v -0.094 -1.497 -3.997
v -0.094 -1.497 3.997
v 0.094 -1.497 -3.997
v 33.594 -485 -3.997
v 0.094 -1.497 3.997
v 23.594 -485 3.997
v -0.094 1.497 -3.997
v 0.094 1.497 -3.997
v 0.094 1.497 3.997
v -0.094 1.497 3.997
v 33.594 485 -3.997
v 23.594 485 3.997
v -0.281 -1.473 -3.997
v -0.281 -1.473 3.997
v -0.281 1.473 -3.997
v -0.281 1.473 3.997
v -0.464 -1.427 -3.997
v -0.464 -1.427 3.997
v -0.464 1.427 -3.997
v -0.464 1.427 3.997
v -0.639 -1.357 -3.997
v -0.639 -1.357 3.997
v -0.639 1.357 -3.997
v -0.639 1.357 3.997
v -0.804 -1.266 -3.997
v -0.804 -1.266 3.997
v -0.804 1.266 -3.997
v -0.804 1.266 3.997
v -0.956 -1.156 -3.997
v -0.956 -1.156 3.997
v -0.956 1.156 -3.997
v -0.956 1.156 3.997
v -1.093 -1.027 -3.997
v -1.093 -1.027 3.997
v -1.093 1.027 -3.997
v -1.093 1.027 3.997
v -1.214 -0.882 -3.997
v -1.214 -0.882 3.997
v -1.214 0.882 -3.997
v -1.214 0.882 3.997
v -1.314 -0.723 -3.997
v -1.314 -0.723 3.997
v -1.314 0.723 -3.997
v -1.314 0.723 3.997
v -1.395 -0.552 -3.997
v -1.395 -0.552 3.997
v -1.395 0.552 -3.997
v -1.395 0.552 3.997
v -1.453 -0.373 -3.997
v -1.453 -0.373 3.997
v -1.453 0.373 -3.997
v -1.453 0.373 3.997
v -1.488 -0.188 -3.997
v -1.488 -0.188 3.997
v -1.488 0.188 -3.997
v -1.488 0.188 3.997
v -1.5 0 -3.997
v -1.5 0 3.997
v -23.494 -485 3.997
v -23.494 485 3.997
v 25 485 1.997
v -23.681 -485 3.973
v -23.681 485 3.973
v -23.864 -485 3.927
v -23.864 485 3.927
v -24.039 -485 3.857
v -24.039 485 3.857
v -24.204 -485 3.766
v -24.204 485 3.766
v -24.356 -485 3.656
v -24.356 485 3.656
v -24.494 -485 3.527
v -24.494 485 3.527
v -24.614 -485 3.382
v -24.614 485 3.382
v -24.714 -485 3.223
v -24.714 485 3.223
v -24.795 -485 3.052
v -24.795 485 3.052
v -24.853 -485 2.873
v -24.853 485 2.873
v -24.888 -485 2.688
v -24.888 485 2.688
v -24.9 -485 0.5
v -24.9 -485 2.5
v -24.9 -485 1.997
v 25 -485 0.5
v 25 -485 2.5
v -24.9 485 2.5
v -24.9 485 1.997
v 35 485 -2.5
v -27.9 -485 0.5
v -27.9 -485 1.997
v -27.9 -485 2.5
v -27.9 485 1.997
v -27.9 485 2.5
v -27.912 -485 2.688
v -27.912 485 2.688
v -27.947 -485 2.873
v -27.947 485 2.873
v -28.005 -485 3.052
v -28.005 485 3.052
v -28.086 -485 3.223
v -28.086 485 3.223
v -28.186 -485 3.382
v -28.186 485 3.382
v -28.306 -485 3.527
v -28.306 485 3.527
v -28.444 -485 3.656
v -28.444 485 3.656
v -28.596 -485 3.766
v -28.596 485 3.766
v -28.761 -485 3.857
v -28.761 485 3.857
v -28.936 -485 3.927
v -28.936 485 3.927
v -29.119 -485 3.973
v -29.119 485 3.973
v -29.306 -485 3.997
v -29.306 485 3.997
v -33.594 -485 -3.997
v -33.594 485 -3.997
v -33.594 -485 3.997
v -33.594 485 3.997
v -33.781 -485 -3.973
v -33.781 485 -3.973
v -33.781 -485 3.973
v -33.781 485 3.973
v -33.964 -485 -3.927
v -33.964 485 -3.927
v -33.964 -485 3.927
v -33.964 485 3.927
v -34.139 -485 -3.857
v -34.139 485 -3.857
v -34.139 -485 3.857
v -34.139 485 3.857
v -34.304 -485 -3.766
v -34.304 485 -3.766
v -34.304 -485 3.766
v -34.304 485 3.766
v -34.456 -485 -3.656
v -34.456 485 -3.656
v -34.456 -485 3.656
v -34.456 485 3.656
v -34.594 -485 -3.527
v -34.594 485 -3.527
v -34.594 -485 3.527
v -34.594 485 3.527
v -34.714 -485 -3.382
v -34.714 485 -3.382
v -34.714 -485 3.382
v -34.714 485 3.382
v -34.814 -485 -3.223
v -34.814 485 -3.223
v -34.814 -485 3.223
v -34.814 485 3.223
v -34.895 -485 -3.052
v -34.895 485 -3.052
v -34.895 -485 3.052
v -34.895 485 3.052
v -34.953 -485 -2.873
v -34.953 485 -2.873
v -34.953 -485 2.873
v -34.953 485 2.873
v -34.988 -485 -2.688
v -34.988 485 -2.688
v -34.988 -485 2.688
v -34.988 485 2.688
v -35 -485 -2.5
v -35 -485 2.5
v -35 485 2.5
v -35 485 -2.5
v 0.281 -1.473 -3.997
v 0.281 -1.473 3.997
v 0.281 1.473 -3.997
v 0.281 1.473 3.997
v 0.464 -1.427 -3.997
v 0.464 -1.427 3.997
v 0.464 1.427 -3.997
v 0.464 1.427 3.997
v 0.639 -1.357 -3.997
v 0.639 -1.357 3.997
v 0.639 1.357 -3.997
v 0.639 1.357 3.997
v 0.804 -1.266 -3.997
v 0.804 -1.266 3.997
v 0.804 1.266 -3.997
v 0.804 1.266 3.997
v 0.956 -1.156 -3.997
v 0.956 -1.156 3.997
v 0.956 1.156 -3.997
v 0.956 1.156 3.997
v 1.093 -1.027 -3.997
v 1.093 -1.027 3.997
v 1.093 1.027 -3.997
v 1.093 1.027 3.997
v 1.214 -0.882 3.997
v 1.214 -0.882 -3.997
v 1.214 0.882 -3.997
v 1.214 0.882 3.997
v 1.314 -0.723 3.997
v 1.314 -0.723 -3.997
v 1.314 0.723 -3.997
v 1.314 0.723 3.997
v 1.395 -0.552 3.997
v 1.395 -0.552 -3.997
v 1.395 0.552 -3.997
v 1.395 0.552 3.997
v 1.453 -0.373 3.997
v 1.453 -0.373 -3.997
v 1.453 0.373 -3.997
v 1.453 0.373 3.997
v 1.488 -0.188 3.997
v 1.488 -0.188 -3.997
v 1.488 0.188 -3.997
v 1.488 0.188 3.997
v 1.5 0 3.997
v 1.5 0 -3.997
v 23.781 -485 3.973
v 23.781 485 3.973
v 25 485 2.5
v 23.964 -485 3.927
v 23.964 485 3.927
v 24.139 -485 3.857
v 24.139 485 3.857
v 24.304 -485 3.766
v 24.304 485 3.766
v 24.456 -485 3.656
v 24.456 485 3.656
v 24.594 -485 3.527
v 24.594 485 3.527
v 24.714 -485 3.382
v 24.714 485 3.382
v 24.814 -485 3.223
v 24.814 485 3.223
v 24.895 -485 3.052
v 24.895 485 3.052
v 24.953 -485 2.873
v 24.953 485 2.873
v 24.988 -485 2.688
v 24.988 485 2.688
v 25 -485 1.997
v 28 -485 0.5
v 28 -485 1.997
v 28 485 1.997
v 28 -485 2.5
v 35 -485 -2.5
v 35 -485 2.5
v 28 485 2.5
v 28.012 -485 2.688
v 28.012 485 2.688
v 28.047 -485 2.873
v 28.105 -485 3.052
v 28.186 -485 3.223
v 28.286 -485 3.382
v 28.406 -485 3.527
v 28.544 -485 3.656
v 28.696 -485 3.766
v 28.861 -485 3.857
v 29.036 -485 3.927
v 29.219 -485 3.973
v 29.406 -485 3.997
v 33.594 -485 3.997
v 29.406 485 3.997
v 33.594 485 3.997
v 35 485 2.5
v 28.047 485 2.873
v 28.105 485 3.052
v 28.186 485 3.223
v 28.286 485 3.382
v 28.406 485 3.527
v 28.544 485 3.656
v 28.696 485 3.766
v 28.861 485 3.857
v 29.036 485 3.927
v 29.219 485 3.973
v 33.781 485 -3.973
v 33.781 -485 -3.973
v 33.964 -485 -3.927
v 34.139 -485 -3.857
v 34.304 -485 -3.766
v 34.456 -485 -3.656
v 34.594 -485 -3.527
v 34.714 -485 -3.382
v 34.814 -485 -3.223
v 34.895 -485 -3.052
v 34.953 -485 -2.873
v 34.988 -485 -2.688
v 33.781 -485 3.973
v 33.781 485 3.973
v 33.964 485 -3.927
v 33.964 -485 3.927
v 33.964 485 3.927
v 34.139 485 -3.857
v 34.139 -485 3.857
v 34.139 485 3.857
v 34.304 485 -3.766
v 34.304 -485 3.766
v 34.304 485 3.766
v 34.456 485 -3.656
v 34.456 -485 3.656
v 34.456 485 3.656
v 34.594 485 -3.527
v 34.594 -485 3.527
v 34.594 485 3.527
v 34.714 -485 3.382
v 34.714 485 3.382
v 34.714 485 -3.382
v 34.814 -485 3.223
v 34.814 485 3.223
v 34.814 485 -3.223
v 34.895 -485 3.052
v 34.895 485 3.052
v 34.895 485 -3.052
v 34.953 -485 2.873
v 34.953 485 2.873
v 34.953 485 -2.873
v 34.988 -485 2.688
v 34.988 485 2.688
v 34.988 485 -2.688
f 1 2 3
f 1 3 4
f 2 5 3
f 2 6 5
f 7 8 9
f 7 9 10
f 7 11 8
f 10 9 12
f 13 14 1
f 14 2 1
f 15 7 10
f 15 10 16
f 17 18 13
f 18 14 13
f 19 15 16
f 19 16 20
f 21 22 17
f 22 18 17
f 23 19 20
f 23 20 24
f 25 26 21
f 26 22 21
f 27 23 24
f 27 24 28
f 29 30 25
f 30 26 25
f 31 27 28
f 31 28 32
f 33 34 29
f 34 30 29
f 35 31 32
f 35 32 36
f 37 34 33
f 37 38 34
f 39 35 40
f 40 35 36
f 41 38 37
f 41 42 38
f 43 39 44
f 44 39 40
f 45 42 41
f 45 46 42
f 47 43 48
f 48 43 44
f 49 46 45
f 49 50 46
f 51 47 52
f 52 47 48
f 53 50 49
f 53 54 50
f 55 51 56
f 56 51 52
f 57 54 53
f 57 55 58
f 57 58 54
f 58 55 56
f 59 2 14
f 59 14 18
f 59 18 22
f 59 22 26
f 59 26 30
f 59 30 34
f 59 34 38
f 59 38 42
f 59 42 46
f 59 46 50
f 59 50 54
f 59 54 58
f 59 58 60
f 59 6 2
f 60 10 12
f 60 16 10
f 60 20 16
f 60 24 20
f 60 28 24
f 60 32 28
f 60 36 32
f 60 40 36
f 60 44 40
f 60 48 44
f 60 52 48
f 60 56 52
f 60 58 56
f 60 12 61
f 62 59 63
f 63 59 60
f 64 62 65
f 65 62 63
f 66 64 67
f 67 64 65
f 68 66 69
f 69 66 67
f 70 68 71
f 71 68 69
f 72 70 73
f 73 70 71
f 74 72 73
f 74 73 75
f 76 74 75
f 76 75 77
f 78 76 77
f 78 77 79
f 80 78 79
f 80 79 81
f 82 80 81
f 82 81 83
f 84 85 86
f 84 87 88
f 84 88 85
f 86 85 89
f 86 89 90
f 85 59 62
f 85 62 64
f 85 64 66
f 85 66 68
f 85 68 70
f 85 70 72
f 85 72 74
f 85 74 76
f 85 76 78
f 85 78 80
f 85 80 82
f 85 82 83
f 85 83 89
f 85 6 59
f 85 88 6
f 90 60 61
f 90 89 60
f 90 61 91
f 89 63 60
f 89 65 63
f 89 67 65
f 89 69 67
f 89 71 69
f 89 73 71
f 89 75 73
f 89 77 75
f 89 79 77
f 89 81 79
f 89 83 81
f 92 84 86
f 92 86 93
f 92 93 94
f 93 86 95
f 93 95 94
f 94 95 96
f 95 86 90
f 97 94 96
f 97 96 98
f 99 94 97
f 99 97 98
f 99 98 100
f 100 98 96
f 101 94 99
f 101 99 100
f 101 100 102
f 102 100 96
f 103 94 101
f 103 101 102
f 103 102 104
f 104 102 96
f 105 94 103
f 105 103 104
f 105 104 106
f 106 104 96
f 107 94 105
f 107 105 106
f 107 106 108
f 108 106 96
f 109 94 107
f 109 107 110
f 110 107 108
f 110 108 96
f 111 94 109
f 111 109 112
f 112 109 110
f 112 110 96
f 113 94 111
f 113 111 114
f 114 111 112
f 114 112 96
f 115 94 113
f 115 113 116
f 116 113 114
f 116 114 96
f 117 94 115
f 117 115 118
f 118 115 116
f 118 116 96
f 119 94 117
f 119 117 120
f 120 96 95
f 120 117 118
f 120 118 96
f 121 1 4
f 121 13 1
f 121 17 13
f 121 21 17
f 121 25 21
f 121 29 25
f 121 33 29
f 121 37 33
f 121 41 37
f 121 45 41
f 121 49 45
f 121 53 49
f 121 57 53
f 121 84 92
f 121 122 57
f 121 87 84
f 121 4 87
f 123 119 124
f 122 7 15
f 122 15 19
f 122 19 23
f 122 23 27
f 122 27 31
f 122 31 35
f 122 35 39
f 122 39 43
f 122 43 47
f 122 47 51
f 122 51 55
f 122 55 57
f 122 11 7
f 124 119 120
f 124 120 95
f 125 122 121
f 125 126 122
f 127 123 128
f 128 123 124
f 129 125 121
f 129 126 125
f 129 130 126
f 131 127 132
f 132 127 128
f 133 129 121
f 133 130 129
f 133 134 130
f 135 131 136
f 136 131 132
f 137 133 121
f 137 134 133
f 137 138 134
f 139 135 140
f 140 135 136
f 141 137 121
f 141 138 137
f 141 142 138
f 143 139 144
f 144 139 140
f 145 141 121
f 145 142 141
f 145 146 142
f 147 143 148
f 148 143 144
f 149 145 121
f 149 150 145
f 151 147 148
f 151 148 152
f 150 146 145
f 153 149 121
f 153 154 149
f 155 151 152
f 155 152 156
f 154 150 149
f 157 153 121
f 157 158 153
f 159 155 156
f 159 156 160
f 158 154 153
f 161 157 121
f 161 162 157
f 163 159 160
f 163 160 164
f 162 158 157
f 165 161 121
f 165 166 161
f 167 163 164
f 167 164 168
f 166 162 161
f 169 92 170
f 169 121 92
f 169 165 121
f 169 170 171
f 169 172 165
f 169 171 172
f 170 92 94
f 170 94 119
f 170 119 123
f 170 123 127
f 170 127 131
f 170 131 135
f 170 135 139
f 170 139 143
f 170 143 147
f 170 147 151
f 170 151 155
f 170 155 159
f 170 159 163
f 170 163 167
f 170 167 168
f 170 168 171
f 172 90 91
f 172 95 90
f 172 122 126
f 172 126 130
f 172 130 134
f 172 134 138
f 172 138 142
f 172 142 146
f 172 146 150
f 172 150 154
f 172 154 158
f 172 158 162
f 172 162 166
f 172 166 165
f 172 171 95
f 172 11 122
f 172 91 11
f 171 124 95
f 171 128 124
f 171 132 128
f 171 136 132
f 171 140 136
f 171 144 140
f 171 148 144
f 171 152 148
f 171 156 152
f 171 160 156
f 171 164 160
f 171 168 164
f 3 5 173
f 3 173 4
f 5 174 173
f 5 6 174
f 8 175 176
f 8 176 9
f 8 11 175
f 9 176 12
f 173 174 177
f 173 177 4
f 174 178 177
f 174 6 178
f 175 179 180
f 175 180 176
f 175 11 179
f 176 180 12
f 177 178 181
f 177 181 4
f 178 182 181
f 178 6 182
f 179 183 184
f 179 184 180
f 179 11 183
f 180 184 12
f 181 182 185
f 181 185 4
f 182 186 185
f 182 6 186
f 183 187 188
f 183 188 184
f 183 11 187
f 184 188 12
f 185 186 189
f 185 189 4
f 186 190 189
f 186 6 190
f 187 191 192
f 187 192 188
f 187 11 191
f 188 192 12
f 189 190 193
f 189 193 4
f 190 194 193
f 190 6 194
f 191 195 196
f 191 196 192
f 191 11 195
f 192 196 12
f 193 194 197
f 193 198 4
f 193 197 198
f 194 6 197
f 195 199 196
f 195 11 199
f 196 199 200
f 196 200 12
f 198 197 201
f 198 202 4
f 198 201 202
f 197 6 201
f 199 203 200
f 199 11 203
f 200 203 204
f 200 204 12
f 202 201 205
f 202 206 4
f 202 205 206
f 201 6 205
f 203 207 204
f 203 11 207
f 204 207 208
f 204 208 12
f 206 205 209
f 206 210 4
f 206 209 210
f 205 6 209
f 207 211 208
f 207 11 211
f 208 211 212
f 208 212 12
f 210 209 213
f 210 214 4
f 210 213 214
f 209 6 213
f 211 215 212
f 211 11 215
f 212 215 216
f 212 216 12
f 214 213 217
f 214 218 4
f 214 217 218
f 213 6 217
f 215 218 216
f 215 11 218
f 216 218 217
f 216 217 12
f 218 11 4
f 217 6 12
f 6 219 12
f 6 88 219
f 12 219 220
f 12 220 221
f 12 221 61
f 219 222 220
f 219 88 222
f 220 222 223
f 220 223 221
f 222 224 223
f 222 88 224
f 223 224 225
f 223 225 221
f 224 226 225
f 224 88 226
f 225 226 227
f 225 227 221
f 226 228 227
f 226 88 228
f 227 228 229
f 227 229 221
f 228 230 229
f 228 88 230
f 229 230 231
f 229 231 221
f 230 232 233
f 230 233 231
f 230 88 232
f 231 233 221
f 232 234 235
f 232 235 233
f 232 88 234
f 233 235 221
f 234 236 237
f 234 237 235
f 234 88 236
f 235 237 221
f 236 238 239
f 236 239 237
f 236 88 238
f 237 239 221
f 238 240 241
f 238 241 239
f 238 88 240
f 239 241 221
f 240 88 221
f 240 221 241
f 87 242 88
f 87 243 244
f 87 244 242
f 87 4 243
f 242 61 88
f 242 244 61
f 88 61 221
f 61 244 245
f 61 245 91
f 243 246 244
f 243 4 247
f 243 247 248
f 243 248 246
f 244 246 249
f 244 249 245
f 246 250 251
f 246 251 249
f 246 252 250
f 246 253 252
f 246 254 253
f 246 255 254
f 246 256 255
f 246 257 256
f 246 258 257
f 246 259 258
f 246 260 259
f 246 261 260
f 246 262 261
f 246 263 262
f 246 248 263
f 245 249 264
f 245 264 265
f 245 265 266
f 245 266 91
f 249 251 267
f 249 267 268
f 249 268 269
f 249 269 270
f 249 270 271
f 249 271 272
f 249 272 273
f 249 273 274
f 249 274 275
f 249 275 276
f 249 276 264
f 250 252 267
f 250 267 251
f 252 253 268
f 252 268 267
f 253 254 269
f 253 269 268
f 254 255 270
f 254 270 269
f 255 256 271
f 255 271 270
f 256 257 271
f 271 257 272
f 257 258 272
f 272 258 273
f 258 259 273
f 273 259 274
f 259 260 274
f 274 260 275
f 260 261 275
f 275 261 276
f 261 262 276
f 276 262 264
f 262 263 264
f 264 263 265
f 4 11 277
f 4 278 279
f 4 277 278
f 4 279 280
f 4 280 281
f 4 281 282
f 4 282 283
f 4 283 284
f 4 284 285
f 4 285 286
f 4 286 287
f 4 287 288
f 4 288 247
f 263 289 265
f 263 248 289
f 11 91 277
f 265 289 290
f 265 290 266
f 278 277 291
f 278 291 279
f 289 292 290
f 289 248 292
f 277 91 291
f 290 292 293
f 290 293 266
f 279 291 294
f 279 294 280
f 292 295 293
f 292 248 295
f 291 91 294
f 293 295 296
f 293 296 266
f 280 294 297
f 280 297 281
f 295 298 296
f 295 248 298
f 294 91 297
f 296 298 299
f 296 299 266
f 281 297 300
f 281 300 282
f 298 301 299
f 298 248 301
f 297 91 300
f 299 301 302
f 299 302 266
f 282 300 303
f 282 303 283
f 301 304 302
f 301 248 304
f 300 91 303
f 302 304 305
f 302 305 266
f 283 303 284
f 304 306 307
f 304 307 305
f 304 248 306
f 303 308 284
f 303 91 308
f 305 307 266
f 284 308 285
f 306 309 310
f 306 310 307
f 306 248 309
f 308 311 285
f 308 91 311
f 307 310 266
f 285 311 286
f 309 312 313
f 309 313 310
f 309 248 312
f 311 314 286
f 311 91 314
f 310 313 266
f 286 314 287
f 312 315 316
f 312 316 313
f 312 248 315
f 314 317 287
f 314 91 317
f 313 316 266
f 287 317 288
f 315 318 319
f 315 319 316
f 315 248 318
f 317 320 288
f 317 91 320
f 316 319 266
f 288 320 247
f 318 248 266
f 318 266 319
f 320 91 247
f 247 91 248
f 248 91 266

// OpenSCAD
// file: ../lib/TextGenerator.scad
//Draw text
scale([4,4,4]) drawtext("Hello World!");

//Draw character set
//scale([2,2,2]) drawtext(" !\"#$%&'()*+,-./0123456789:;<=>?@ABCDEFGHIJKLMNOPQRSTUVWXYZ[\\]^_`abcdefghijklmnopqrstuvwxyz{|}");

module drawtext(text,center=false) {
	//Characters
	chars = " !\"#$%&'()*+,-./0123456789:;<=>?@ABCDEFGHIJKLMNOPQRSTUVWXYZ[\\]^_`abcdefghijklmnopqrstuvwxyz{|}";

	//Chracter table defining 5x7 characters
	//Adapted from: http://www.geocities.com/dinceraydin/djlcdsim/chartable.js
	char_table = [ [ 0, 0, 0, 0, 0, 0, 0],
                  [ 4, 0, 4, 4, 4, 4, 4],
                  [ 0, 0, 0, 0,10,10,10],
                  [10,10,31,10,31,10,10],
                  [ 4,30, 5,14,20,15, 4],
                  [ 3,19, 8, 4, 2,25,24],
                  [13,18,21, 8,20,18,12],
                  [ 0, 0, 0, 0, 8, 4,12],
                  [ 2, 4, 8, 8, 8, 4, 2],
                  [ 8, 4, 2, 2, 2, 4, 8],
                  [ 0, 4,21,14,21, 4, 0],
                  [ 0, 4, 4,31, 4, 4, 0],
                  [ 8, 4,12, 0, 0, 0, 0],
                  [ 0, 0, 0,31, 0, 0, 0],
                  [12,12, 0, 0, 0, 0, 0],
                  [ 0,16, 8, 4, 2, 1, 0],
                  [14,17,25,21,19,17,14],
                  [14, 4, 4, 4, 4,12, 4],
                  [31, 8, 4, 2, 1,17,14],
                  [14,17, 1, 2, 4, 2,31],
                  [ 2, 2,31,18,10, 6, 2],
                  [14,17, 1, 1,30,16,31],
                  [14,17,17,30,16, 8, 6],
                  [ 8, 8, 8, 4, 2, 1,31],
                  [14,17,17,14,17,17,14],
                  [12, 2, 1,15,17,17,14],
                  [ 0,12,12, 0,12,12, 0],
                  [ 8, 4,12, 0,12,12, 0],
                  [ 2, 4, 8,16, 8, 4, 2],
                  [ 0, 0,31, 0,31, 0, 0],
                  [16, 8, 4, 2, 4, 8,16],
                  [ 4, 0, 4, 2, 1,17,14],
                  [14,21,21,13, 1,17,14],
                  [17,17,31,17,17,17,14],
                  [30,17,17,30,17,17,30],
                  [14,17,16,16,16,17,14],
                  [30,17,17,17,17,17,30],
                  [31,16,16,30,16,16,31],
                  [16,16,16,30,16,16,31],
                  [15,17,17,23,16,17,14],
                  [17,17,17,31,17,17,17],
                  [14, 4, 4, 4, 4, 4,14],
                  [12,18, 2, 2, 2, 2, 7],
                  [17,18,20,24,20,18,17],
                  [31,16,16,16,16,16,16],
                  [17,17,17,21,21,27,17],
                  [17,17,19,21,25,17,17],
                  [14,17,17,17,17,17,14],
                  [16,16,16,30,17,17,30],
                  [13,18,21,17,17,17,14],
                  [17,18,20,30,17,17,30],
                  [30, 1, 1,14,16,16,15],
                  [ 4, 4, 4, 4, 4, 4,31],
                  [14,17,17,17,17,17,17],
                  [ 4,10,17,17,17,17,17],
                  [10,21,21,21,17,17,17],
                  [17,17,10, 4,10,17,17],
                  [ 4, 4, 4,10,17,17,17],
                  [31,16, 8, 4, 2, 1,31],
                  [14, 8, 8, 8, 8, 8,14],
                  [ 0, 1, 2, 4, 8,16, 0],
                  [14, 2, 2, 2, 2, 2,14],
                  [ 0, 0, 0, 0,17,10, 4],
                  [31, 0, 0, 0, 0, 0, 0],
                  [ 0, 0, 0, 0, 2, 4, 8],
                  [15,17,15, 1,14, 0, 0],
                  [30,17,17,25,22,16,16],
                  [14,17,16,16,14, 0, 0],
                  [15,17,17,19,13, 1, 1],
                  [14,16,31,17,14, 0, 0],
                  [ 8, 8, 8,28, 8, 9, 6],
                  [14, 1,15,17,15, 0, 0],
                  [17,17,17,25,22,16,16],
                  [14, 4, 4, 4,12, 0, 4],
                  [12,18, 2, 2, 2, 6, 2],
                  [18,20,24,20,18,16,16],
                  [14, 4, 4, 4, 4, 4,12],
                  [17,17,21,21,26, 0, 0],
                  [17,17,17,25,22, 0, 0],
                  [14,17,17,17,14, 0, 0],
                  [16,16,30,17,30, 0, 0],
                  [ 1, 1,15,19,13, 0, 0],
                  [16,16,16,25,22, 0, 0],
                  [30, 1,14,16,15, 0, 0],
                  [ 6, 9, 8, 8,28, 8, 8],
                  [13,19,17,17,17, 0, 0],
                  [ 4,10,17,17,17, 0, 0],
                  [10,21,21,17,17, 0, 0],
                  [17,10, 4,10,17, 0, 0],
                  [14, 1,15,17,17, 0, 0],
                  [31, 8, 4, 2,31, 0, 0],
                  [ 2, 4, 4, 8, 4, 4, 2],
                  [ 4, 4, 4, 4, 4, 4, 4],
                  [ 8, 4, 4, 2, 4, 4, 8] ];

	//Binary decode table
	dec_table = [ "00000", "00001", "00010", "00011", "00100", "00101",
  	            "00110", "00111", "01000", "01001", "01010", "01011",
  	            "01100", "01101", "01110", "01111", "10000", "10001",
  	            "10010", "10011", "10100", "10101", "10110", "10111",
	            "11000", "11001", "11010", "11011", "11100", "11101",
	            "11110", "11111" ];

    //Process string one character at a time
    for(itext = [0:len(text)-1]) {
        assign(length = len(text)) {
            //Convert character to index
            assign(ichar = search(text[itext],chars,1)[0]) {
                //Decode character - rows
                for(irow = [0:6]) {
                    assign(val = dec_table[char_table[ichar][irow]]) {
                        //Decode character - cols
                        for(icol = [0:4]) {
                            assign(bit = search(val[icol],"01",1)[0]) {
                                if(bit) {
                                    //Output cube
                                    if (center)
                                        translate([icol - 2.5 +
                                        (6*itext)-len(text)/2, irow-3.5,0])
                                            cube([1.0001,1.0001,1]);
                                    else {
                                        translate([icol + (6*itext), irow, 0])
                                            cube([1.0001,1.0001,1]);
                                    }
                                }
                            }
                        }
                    }
                }
            }
	}
}
}
// file: ../lib/bevel.scad
h=20;

h_bevel=6;
r_bevel=3;

function h_bev(i)=h_bevel*(1-cos(90*i));
function r_bev(i)=((i==1)?e:0)+r_bevel*(1-sin(90*i));


e=0.001;

fn_bevel=16 ;
$fn=32;

module part_base(){
	cube([60,30,20]);
}

module part1(){
	translate([25,15,20])
		rotate([0,0,0])
			cylinder(40,10,5,true,$fn=5);
}

module part2(){
	translate([25,15,20])
		difference(){
		rotate([90,0,0])
			rotate_extrude()translate([10,0,0])circle(5);
		rotate([0,45,0])translate([100,0,0])cube(200,true);
		}
}

module part3(){
	translate([25,15,20])
		rotate([0,135,0])
			translate([-10,0,0])
			linear_extrude(height=15+e,scale=[1,e])circle(5);
}


module part4(){
	translate([25,15,0])
			translate([-10,0,0])
			cube([10,10,100]);
			/*union(){
				airfoil(naca = 0015, L = 20, N = 100, h = 50, open = false);
			}*/
}

module slice(h){
	projection(cut=true)
		translate([0,0,-h])
			children(0);
}

module edge(){
	difference(){
		minkowski(){
			children(0);
			circle(e);
		}
		children(0);
	}
}

module bev(i){
	minkowski(){
		children(0);
		circle(r_bev(i));
	}
}

module extrude(){
	linear_extrude(height=e)children(0);
}

module bevel(h,h_bevel,r_bevel,fn_bevel){
	translate([0,0,h])
		for(i=[0:1/fn_bevel:1-1/fn_bevel]){
			hull(){
				translate([0,0,h_bev(i)])
					extrude()bev(i)edge()slice(h+h_bev(i))children(0);
				translate([0,0,h_bev(i+1/fn_bevel)])
					extrude()bev(i+1/fn_bevel)edge()slice(h+h_bev(i+1/fn_bevel))children(0);
			}
		}
}


use <./naca4.scad>

//bevel(10,10,10,20)airfoil(naca = 0015, L = 100, N = 100, h = 50, open = false);



//bevel(h,h_bevel,r_bevel,fn_bevel)part2();
//bevel(h,h_bevel,r_bevel,fn_bevel)part3();
part1();
//part1();
bevel(h,h_bevel,r_bevel,fn_bevel)part1();
//part4();
//part1();
//part_base();
// file: ../lib/naca4.scad
// Naca4.scad - library for parametric airfoils of 4 digit NACA series
// Code: Rudolf Huttary, Berlin 
// June 2015
// commercial use prohibited


// general use: for more examples refer to sampler.scad
// naca = naca digits or 3el vector  (default = 12 or [0, 0, .12])
// L    = chord length [mm]      (default= 100)
// N    = # sample points        (default= 81)
// h    = height [mm]            (default= 1)
// open = close at the thin end? (default = true)
// two equivalent example calls
 airfoil(naca = 2408, L = 60, N=1001, h = 30, open = false); 
// airfoil(naca = [.2, .4, .32], L = 60, N=1001, h = 30, open = false); 

module help()
{
  echo(str("\n\nList of signatures in lib:\n=================\n", 
  "module airfoil(naca=2412, L = 100, N = 81, h = 1, open = false) - renders airfoil object\n", 
  "module airfoil(naca=[.2, .4, .12], L = 100, N = 81, h = 1, open = false) - renders airfoil object using percentage for camber,  camber distance and thicknes\n", 
  "function airfoil_data(naca=12, L = 100, N = 81, open = false)\n",
  "=================\n")); 
}

help(); 
// this is the object
module airfoil(naca=12, L = 100, N = 81, h = 1, open = false)
{
  linear_extrude(height = h)
  polygon(points = airfoil_data(naca, L, N, open)); 
}

module hollow_airfoil(lnaca=12, L = 100, N = 81, h = 1, open = false, wall_thickness = 1)
{
    if (open){
        linear_extrude(height = h)

        if (wall_thickness>0){
            difference(){
                polygon(points = airfoil_data(naca, L, N, false));
                offset(delta = - wall_thickness, chamfer = false) polygon(points = airfoil_data(naca, L, N, open = false));
            }
        }
        else{
            difference(){
                offset(delta = - wall_thickness, chamfer = false) polygon(points = airfoil_data(naca, L, N, open = false));
                polygon(points = airfoil_data(naca, L, N, false));
            }
        }
    }
    else{

        linear_extrude(height = abs(wall_thickness))
            polygon(points = airfoil_data(naca, L, N, false)); 

        linear_extrude(height = h)
            difference(){
                polygon(points = airfoil_data(naca, L, N, open));
                offset(delta = - wall_thickness) polygon(points = airfoil_data(naca, L, N, open = false));
            }

        translate([0,0, h - wall_thickness])
            linear_extrude(height = abs(wall_thickness))
                polygon(points = airfoil_data(naca, L, N, false)); 

    }
}


// this is the main function providing the airfoil data
function airfoil_data(naca=12, L = 100, N = 81, open = false) = 
  let(Na = len(naca)!=3?NACA(naca):naca)
  let(A = [.2969, -0.126, -.3516, .2843, open?-0.1015:-0.1036])
  [for (b=[-180:360/(N):179.99]) 
    let (x = (1-cos(b))/2)  
    let(yt = sign(b)*Na[2]/.2*(A*[sqrt(x), x, x*x, x*x*x, x*x*x*x])) 
    Na[0]==0?L*[x, yt]:L*camber(x, yt, Na[0], Na[1], sign(b))];  


function trailing_edge_angle(naca=12, open = false) = 
  let(Na = len(naca)!=3?NACA(naca):naca)
  let(A = [.2969, -0.126, -.3516, .2843, open?-0.1015:-0.1036])
  let (x =0.999)  // set x near to airfoil trailing edge
  let(yt = Na[2]/.2*(A*[sqrt(x), x, x*x, x*x*x, x*x*x*x])) // calculate distance from x-axis at previously set position
  atan2(yt,1-x);  // calculate angle of triangle between end of airfoil. The triange height corresponds to previously calculated distance from x-axis

function surface_angle(x = 0.5, naca=12, open = false) = 
  let(Na = len(naca)!=3?NACA(naca):naca)
  let(A = [0.2969, -0.126, -0.3516, 0.2843, open?-0.1015:-0.1036])
  let(dy = Na[2]/0.2*(A*[(1/2)*(1/sqrt(x)), 1, 2*x, 3*x*x, 4*x*x*x])) // calculate derivative of airfoil function at the x point
  atan(dy);  // calculate  the angle from function derivative

function surface_distance(x = 0.5, naca=12, open = false) = 
  let(Na = len(naca)!=3?NACA(naca):naca)
  let(A = [0.2969, -0.126, -0.3516, 0.2843, open?-0.1015:-0.1036])
  Na[2]/.2*(A*[sqrt(x), x, x*x, x*x*x, x*x*x*x]); // calculate distance from x-axis at previously set position

// helper functions
function NACA(naca) = 
  let (M = floor(naca/1000))
  let (P = floor((naca-M*1000)/100)) 
  [M/100, P/10, floor(naca-M*1000-P*100)/100];  

function camber(x, y, M, P, upper) = 
  let(yc = (x<P)?M/P/P*(2*P*x-x*x): M/(1-P)/(1-P)*(1 - 2*P + 2*P*x -x*x))
  let(dy = (x<P)?2*M/P/P*(P-x):2*M/(1-P)/(1-P)*(P-x))
  let(th = atan(dy))
  [upper ? x - y*sin(th):x + y*sin(th), upper ? yc + y*cos(th):yc - y*cos(th)];
// file: ../333_1037.scad
DOC_SCALING_FACTOR = 100;
DOC_HEIGHT = 250;

include <./lib/dimlines.scad>

DIM_LINE_WIDTH = .025 * DOC_SCALING_FACTOR;
DIM_SPACE = .1 * DOC_SCALING_FACTOR;

draft = false;   // sets rendering quality to draft.
$fs = draft ? 5 : 0.5;
$fa = 10;

// Nastavení zobrazení
/*$vpr = [38, 0, 38];
$vpt = [0, 0, 0];
$vpd = 1960;
*/


module 333_1037(twosided = true, draft = false){

    airfoil_NACA = 0016;    // typ použitého profilu
    airfoil_depth = 50; // hloubka profilu
    length = 970-1;       // celková délka polotovaru
    material_width = 70;
    core_thickness = 1.0;       // tloušťka jádra
    airfoil_thickness = (airfoil_NACA/100) * airfoil_depth; // vypočtená maximální tloušťka profilu
    bridge_thickness = 0.6;  // tloušťka spojení mezi rotorovým listem a rámečkem
    milling_cutter_radius = 1.5;

    if(twosided) // výpis vypočtené tloušťky profilu
        echo("Minimum material thickness", airfoil_thickness);
    else
        echo("Minimum material thickness", airfoil_thickness/2 - core_thickness/2);  

    difference (){      // odečet poloviny polotovaru a jádra v případě, že jde o jednostranný  polotovar

        minkowski()     // základní materiál
        {
            difference (){
                cube([material_width - 2*milling_cutter_radius, length, airfoil_thickness - 2*milling_cutter_radius], center = true);

                // odečet frézovaného objemu, pokud jde o jednostranný polotovar, tak musí být zanechán materiál pro přidržení rámečku materiálu.
            	translate([airfoil_depth/2 + milling_cutter_radius, 0, airfoil_thickness/2 - milling_cutter_radius - core_thickness/2])
                    cube([4* milling_cutter_radius, 2*length, 2* milling_cutter_radius], center = true);

                translate([-airfoil_depth/2 + 0.1 - milling_cutter_radius, 0, airfoil_thickness/2 - milling_cutter_radius - core_thickness/2])
                    cube([4* milling_cutter_radius, 2*length, 2* milling_cutter_radius], center = true);
            }
            rotate([90,0,0])
                cylinder(r=milling_cutter_radius, h=1, $fn = draft ? 20 :50, center = true);
        }

        // boční drážky mezi rámečkem a listem
      /*  translate([airfoil_depth/2 + milling_cutter_radius, 0, milling_cutter_radius + core_thickness/2])
            rotate([90,0,0])
                cylinder(r = milling_cutter_radius, h = 2*length, $fn = draft ? 20 :50, center = true);

        translate([-airfoil_depth/2 + 0.1 - milling_cutter_radius, 0, milling_cutter_radius + core_thickness/2])
            rotate([90,0,0])
                cylinder(r = milling_cutter_radius, h = 2*length, $fn = draft ? 20 :50, center = true);
    */
        // místo pro list
        /*translate ([0, 0, airfoil_thickness/2 + core_thickness/2])
            cube([airfoil_depth + 2* milling_cutter_radius, length - 2*120, airfoil_thickness], center = true);
        */

                cylinder(r = milling_cutter_radius, h = 2*length, $fn = draft ? 20 :50, center = true);

    }

    // profil rotorového listu
    /*//color("Blue",0.5)
    translate ([ -airfoil_depth/2 + 0.1, length/2, 0])
        rotate([90, 0, 0])
            airfoil(naca = airfoil_NACA, L = airfoil_depth, N = draft ? 50 : 100, h = length, open = false);  

    // přechod z kořenu rotorového listu na list
    intersection(){
        translate ([ 0.1, 0, 0])
            minkowski()     // základní materiál
            {
                cube([airfoil_depth - 2* milling_cutter_radius, length,airfoil_thickness - 2* milling_cutter_radius], center = true);
                rotate([90,0,0])
                    cylinder(r = milling_cutter_radius, h = 2*length, $fn = draft ? 20 :50, center = true);
            }

        union(){
            translate ([ -material_width/2 + 2.6 + 7.5, length/2, 0])
                rotate([90, 0, 0])
                    bevel(120,15,15, draft ? 5 : 50)
                        airfoil(naca = airfoil_NACA, L = airfoil_depth, N = draft ? 50 : 100, h = length, open = false);

            translate ([ -material_width/2 + 2.6 + 7.5, -length/2, 0])
                rotate([-90,0,0])
                    bevel(120,15,15,draft ? 5 : 50)
                        airfoil(naca = airfoil_NACA, L = airfoil_depth, N = draft ? 50 : 100, h = length, open = false);
        }
    }*/

}

module 333_1037_doc(length = 970, material_width = 70, twosided = true, draft = false){

    translate([0, 0, DOC_HEIGHT])
    color("Black")
        union(){
            translate([-material_width / 2, length/ 2, 0])
                rotate([0, 0, 90])
                line(DIM_SPACE * 3, line_width=DIM_LINE_WIDTH);

            translate([material_width / 2, length/ 2, 0])
                rotate([0, 0, 90])
                line(DIM_SPACE * 3, line_width=DIM_LINE_WIDTH);

            translate([material_width / 2, length/ 2, 0])
                line(DIM_SPACE * 3, line_width=DIM_LINE_WIDTH);

            translate([material_width / 2, -length/ 2, 0])
                line(DIM_SPACE * 3, line_width=DIM_LINE_WIDTH);


            translate([-material_width / 2, length/2 + DIM_SPACE * 2 , 0])
                dimensions(material_width, line_width=DIM_LINE_WIDTH, loc=DIM_CENTER);

            translate([material_width / 2 + DIM_SPACE * 2, -length/ 2 , 0])
                rotate([0, 0, 90])
                    dimensions(length, line_width=DIM_LINE_WIDTH, loc=DIM_CENTER);
        }

}

333_1037(twosided = true, draft = draft);
//333_1037_doc(length=970);



use <./lib/naca4.scad>
use <./lib/bevel.scad>
use <./lib/dimlines.scad>
include <../parameters.scad>
// main file
include <../../parameters.scad>
use <../333_1037.scad>

$vpd = 680;
        
333_1037(twosided = false, draft = false);
